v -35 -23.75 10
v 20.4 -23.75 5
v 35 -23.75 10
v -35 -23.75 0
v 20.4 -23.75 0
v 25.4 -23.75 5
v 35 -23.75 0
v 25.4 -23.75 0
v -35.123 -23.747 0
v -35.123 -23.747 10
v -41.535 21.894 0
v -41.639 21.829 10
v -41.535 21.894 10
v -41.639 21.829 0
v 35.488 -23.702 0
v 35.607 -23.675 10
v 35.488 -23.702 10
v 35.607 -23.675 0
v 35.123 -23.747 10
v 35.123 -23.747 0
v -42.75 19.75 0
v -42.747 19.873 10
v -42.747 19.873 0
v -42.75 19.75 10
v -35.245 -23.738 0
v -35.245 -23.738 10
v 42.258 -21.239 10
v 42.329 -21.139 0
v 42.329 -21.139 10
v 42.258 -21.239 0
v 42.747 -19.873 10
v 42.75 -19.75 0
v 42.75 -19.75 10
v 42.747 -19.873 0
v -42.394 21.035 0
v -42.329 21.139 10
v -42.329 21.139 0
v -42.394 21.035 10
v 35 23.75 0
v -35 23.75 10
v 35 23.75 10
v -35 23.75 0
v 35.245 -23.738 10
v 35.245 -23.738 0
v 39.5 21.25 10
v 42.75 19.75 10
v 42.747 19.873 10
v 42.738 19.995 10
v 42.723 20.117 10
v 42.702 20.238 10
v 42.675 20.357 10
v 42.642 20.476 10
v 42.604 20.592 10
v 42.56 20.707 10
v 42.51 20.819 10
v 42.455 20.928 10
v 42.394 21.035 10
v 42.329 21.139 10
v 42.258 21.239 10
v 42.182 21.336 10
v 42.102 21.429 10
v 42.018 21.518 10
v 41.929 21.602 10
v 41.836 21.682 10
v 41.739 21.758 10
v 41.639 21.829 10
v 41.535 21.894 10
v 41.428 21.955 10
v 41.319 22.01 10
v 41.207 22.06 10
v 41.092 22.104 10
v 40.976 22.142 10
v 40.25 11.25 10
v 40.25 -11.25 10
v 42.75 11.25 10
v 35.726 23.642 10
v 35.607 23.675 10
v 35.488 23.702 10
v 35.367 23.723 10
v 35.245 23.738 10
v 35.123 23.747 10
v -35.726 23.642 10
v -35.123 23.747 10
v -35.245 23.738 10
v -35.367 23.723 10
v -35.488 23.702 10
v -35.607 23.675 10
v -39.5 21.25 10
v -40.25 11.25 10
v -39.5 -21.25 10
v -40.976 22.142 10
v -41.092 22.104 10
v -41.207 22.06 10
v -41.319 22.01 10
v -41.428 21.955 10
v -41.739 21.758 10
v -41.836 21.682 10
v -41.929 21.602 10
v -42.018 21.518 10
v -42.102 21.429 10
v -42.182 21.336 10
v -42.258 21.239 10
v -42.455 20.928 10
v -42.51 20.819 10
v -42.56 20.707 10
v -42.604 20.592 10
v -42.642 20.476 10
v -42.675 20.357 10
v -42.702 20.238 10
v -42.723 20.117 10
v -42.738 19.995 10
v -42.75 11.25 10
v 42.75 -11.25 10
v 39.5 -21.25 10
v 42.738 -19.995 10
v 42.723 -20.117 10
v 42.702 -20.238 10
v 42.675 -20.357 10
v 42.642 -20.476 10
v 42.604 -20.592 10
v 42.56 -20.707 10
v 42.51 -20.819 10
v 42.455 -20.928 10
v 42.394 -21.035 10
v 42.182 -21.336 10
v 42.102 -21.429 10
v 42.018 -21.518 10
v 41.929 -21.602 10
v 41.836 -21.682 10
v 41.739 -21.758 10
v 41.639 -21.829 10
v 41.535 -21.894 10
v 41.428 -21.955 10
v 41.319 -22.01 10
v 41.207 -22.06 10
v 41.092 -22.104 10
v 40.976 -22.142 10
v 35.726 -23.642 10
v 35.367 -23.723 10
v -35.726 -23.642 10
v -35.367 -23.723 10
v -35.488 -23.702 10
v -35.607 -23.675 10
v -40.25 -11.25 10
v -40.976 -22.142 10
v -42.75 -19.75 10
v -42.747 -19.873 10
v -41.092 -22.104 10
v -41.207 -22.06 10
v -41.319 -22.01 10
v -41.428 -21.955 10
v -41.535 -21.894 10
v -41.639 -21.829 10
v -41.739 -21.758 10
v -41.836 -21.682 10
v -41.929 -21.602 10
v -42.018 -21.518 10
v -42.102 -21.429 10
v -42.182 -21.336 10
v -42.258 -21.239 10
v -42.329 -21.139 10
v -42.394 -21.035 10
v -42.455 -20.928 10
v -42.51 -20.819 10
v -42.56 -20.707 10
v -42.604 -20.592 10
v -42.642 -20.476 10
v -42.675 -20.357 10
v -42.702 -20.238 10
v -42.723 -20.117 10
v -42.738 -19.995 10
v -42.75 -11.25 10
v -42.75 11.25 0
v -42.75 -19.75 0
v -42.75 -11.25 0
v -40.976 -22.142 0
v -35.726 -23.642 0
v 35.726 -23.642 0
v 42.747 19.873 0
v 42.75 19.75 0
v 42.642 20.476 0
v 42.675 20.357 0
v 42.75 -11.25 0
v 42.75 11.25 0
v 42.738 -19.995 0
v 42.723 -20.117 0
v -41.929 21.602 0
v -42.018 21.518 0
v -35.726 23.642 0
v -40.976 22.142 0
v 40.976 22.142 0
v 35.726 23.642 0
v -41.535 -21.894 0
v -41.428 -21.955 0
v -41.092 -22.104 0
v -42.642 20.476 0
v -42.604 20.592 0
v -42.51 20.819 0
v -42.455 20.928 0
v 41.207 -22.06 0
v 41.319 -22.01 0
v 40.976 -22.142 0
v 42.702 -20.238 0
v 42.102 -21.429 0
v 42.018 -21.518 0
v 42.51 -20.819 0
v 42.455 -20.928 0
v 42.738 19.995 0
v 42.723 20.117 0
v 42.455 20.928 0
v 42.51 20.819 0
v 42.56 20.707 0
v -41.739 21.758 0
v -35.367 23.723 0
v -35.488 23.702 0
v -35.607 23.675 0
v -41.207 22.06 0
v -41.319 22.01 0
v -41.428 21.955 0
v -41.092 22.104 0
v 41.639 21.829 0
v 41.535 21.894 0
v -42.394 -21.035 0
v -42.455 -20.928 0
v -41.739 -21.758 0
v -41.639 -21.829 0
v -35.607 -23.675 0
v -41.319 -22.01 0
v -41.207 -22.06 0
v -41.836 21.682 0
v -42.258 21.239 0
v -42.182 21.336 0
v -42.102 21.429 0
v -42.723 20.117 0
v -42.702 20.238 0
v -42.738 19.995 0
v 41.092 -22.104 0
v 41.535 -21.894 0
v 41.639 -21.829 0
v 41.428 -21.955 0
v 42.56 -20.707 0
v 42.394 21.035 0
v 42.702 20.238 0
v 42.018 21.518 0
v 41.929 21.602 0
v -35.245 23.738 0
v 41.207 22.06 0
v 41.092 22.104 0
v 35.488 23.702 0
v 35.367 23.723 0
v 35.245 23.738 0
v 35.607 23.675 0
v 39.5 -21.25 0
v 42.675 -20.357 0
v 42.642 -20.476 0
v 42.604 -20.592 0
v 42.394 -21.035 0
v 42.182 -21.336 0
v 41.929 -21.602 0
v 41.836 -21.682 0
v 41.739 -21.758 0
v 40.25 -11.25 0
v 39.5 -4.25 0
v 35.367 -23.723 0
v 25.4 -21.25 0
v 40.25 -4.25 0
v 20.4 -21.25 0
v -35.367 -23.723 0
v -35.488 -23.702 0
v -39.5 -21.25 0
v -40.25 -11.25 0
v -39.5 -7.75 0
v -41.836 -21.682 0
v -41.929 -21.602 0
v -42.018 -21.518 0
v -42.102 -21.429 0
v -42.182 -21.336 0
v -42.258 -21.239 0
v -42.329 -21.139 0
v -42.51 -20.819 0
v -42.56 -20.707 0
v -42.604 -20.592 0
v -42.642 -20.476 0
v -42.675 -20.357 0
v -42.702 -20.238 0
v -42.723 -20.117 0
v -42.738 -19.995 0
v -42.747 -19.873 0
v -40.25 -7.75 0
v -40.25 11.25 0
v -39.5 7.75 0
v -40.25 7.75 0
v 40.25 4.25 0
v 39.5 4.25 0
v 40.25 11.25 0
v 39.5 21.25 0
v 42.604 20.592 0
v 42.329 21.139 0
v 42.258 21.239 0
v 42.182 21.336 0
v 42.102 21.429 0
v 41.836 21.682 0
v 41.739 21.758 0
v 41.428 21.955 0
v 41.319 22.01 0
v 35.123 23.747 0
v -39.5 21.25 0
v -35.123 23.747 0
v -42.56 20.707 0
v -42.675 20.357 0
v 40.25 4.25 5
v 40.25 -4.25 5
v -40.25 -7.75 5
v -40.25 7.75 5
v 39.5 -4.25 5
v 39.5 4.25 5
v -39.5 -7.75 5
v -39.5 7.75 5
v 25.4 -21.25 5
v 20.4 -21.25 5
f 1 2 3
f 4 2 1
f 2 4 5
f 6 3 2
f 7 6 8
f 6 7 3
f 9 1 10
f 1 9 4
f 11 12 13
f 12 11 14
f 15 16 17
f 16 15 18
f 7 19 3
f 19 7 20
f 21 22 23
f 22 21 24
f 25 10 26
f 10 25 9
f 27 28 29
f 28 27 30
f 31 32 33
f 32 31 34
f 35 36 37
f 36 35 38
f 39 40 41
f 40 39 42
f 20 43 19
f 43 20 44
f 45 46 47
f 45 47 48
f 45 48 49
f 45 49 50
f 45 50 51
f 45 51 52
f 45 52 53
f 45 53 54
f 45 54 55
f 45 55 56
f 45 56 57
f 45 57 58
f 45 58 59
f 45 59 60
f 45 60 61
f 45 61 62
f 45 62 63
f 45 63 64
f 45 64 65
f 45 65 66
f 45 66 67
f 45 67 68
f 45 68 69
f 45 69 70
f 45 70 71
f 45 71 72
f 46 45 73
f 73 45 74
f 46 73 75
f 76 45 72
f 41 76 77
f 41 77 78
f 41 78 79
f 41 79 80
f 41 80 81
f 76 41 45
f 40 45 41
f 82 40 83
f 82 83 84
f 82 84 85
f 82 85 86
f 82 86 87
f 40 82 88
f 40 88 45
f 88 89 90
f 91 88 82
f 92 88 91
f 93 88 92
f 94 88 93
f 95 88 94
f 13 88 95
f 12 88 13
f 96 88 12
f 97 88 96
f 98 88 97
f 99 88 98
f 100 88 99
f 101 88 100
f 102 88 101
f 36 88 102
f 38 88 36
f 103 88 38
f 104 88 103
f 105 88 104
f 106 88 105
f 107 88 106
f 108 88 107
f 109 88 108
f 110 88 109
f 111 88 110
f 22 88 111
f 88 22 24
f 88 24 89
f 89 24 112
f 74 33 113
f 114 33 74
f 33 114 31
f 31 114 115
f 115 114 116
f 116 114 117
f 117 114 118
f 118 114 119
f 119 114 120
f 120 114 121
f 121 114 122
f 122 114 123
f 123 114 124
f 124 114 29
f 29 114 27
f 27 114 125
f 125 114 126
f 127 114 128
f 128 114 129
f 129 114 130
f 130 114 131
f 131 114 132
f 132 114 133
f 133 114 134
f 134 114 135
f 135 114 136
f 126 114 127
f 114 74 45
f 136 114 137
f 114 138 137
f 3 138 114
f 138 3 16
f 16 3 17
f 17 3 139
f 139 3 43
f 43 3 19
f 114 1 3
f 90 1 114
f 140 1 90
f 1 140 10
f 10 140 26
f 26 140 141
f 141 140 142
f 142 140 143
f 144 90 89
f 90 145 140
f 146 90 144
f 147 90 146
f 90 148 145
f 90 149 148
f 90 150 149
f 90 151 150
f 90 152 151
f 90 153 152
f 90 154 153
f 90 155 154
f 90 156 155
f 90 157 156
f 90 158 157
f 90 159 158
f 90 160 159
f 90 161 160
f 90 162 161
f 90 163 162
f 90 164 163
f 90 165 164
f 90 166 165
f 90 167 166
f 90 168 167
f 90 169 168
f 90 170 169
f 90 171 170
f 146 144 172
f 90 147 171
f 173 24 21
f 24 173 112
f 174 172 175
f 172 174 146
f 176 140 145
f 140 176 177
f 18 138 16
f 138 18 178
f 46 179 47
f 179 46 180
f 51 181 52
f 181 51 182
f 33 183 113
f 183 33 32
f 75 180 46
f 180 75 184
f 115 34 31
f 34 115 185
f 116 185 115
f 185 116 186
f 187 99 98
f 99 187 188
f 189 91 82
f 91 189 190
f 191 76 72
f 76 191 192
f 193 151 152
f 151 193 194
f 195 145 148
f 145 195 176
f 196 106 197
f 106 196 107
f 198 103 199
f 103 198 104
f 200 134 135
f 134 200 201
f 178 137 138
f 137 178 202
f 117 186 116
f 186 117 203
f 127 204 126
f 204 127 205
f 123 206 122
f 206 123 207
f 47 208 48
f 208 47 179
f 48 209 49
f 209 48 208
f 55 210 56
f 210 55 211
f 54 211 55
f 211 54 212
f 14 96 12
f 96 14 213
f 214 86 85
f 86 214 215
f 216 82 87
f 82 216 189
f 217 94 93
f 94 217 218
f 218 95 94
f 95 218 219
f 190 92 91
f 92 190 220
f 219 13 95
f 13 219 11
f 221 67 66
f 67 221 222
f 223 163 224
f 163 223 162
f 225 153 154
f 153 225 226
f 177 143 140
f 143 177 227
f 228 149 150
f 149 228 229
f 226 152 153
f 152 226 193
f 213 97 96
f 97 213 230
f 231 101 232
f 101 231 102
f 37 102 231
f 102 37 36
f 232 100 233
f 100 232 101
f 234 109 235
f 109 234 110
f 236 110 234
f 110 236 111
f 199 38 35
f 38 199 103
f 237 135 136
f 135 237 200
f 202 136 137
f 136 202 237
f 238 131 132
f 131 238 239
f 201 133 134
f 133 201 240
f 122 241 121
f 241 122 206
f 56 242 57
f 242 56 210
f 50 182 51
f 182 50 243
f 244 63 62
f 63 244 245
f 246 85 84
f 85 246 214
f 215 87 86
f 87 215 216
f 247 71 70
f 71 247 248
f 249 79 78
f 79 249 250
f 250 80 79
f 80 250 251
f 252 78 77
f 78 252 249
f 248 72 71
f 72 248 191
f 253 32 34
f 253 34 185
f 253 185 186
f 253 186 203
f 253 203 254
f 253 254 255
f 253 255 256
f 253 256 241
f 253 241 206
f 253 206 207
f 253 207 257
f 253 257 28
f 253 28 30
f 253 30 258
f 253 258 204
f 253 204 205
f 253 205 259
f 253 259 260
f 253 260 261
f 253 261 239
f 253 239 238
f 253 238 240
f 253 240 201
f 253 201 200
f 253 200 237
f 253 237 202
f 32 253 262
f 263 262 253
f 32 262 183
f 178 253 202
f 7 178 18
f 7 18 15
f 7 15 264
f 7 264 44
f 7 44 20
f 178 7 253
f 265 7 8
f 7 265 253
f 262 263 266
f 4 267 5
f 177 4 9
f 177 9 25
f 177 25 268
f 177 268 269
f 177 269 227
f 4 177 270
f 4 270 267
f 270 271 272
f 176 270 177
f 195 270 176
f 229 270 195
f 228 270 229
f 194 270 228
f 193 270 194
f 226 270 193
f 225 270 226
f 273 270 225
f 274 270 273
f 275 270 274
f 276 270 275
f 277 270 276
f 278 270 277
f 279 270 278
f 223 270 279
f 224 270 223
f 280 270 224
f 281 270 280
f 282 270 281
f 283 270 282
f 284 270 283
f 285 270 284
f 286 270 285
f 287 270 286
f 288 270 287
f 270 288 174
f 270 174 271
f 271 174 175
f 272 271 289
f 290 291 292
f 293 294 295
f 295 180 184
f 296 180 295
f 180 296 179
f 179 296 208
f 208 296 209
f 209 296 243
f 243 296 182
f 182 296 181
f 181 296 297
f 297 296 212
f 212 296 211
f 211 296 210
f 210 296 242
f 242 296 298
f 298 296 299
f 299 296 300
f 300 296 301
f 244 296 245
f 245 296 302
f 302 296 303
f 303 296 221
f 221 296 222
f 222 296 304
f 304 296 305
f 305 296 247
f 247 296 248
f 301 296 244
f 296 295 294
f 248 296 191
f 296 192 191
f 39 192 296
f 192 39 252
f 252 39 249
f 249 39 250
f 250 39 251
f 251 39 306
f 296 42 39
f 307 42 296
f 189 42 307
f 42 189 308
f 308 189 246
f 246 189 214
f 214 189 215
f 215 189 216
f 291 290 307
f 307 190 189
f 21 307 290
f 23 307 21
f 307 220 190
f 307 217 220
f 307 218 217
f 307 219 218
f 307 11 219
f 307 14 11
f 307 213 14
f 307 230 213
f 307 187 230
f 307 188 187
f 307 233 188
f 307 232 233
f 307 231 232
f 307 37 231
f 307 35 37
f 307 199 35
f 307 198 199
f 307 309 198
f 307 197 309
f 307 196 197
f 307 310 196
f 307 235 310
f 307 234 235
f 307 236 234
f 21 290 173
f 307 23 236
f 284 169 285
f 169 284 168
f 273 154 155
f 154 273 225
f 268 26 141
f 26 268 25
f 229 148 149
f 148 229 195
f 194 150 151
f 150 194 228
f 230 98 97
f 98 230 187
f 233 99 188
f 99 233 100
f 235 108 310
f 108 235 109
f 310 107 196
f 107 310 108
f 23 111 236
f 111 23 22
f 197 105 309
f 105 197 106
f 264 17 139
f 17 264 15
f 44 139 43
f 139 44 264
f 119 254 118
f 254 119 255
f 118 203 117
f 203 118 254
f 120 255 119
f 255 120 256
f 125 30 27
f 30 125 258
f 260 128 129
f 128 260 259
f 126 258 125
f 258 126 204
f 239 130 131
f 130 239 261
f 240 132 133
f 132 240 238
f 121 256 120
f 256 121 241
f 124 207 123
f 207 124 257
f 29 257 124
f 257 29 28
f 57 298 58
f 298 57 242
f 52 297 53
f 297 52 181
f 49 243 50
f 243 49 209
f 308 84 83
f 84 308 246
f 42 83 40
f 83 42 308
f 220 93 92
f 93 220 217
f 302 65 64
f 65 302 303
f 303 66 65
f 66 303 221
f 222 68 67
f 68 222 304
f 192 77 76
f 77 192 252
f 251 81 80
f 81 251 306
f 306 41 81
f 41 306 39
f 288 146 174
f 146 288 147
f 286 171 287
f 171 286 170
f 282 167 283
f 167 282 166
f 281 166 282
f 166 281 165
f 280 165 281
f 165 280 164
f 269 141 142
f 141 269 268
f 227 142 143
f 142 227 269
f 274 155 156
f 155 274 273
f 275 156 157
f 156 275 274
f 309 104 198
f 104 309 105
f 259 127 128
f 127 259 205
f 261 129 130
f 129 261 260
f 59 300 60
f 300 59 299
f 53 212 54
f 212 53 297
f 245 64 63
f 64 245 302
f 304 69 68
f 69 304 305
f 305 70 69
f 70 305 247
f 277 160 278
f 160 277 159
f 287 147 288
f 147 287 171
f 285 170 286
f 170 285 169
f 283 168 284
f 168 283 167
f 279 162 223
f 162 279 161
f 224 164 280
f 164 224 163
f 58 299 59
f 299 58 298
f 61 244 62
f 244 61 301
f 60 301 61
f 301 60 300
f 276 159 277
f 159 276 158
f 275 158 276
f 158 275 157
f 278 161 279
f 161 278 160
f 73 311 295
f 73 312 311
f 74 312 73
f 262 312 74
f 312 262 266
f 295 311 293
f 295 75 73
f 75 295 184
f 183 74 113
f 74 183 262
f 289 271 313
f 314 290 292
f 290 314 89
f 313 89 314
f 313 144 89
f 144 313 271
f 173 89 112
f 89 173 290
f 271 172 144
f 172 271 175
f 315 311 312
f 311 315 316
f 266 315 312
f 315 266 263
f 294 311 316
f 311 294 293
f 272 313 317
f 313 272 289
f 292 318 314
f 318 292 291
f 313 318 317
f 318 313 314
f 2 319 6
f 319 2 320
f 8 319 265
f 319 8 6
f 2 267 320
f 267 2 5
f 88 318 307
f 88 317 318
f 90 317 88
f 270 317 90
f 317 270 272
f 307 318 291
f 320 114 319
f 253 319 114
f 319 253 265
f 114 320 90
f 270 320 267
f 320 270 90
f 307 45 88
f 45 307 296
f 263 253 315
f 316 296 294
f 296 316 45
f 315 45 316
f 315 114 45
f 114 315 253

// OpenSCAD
$fn = 128;

DEPTH = 4; //23
MAX_WIDTH = 85.5; //85
MIN_WIDTH = 80;

BASE_WIDTH = 75; //71.5
BASE_HEIGHT = 44.5; //39.5

CUT_IN = 2.5;
CUT_IN_HEIGHT = 22.5;

MAX_HEIGHT = 47.5; //47
MARGIN_H = 12;
MARGIH_V = 7;

BAT_HEIGHT = 42.00;
BAT_WIDTH = 78.50;
BAT_DEPTH = 5; // ??

PCB_HEIGHT = 42.50; //42.00
PCB_WIDTH = 79.0;  //78.50
PCB_DEPTH = 1.55;   //1.55

BATTERY_BASKET_HEIGHT = 40.50;
BATTERY_BASKET_WIDTH = 78.00;
BATTERY_BASKET_DEPTH = 21.88;

CORNERS_CURVE = 5;

//USB MICRO, TODO: add real numbers
USB_MICRO_WIDTH = 5.8; 
USB_MICRO_HEIGHT = 8.5; //8
USB_MICRO_DEPTH = 2.55;

//USB STANDARD, TODO: add real numbers
USB_STANDARD_WIDTH = 10; 
USB_STANDARD_HEIGHT = 15.5; //14.9
USB_STANDARD_DEPTH = 7.22;

//BATTERY CHECK
BATTERY_CHECK_WIDTH = 5; // 4.6
BATTERY_CHECK_HEIGHT = 5.08;
BATTERY_CHECK_DEPTH = 6.20;
BATTERY_CHECK_OFFSET = 13.85; //13.85

//Inkscape scale
SCALE = 3.58;

EXPLODE = 0;

DEBUG = false;
DEBUG_HINT = false;

bottom();
//translate([0,0,20])
//top();


module bottom(){
    battery_support_layer = 10;
    
    if(battery_support_layer>0){    
        color("grey")
        translate([0,0,battery_support_layer/2])
        lantian_battery_support_layer(battery_support_layer);
           
        // This can to be commented out once we have all the shapes
        if(DEBUG_HINT){
            color("blue")
            translate([0,0,10 + EXPLODE*2])    
            union(){
                rotate([180,0,0])
                scale([SCALE,SCALE,1])
                inkscape_battery();
            }     
        }   
    }
}

module top(){
    top_layer = 2;
    
    if(top_layer>0){
        color("white")
        translate([0,0,top_layer/2])
        main_shape(top_layer);
    } 
}

module main_shape(depth){
    // This is the main shape of the case
    difference(){
        hull(){
            rounded_corners(BASE_WIDTH, MAX_HEIGHT, depth, CORNERS_CURVE);
            rounded_corners(MAX_WIDTH, BASE_HEIGHT, depth, CORNERS_CURVE);
        }
        
        translate([MAX_WIDTH/2,0,0])
        cut_in();
        
        translate([-MAX_WIDTH/2,0,0])
        cut_in();        
    
    }    
}

module cut_in(){
    cube([CUT_IN*2, CUT_IN_HEIGHT, DEPTH*4], true);
}

module battery(){
    translate([0,0,PCB_DEPTH/2])
    union(){        
        
        color("grey")
        translate([0,0,PCB_DEPTH/2 + BATTERY_BASKET_DEPTH/2])        
        battery_basket();
        
        color("red")
        battery_pcb(10,PCB_DEPTH+10);
        
        color("white")
        translate([0,0,-PCB_DEPTH/2])        
        battery_pcb_components(PCB_DEPTH);    
    }
}

module battery_basket(){
    cube([BATTERY_BASKET_WIDTH, BATTERY_BASKET_HEIGHT, BATTERY_BASKET_DEPTH], true);        
}

module battery_pcb(hull_size, hull_size_down){
    hull(){
        cube([PCB_WIDTH, PCB_HEIGHT, PCB_DEPTH], true);    
        
        if(hull_size>PCB_DEPTH){                
            translate([0, 0, hull_size-PCB_DEPTH])                
            cube([PCB_WIDTH, PCB_HEIGHT, PCB_DEPTH], true);    
        }
        
        if(hull_size_down>PCB_DEPTH){                
            translate([0, 0, PCB_DEPTH-hull_size_down])                
            cube([PCB_WIDTH, PCB_HEIGHT, PCB_DEPTH], true);    
        }        
    }
}

module battery_pcb_components(){
    hull_size = 10;
    union(){
        //Slot for micro USB
        translate([(BAT_WIDTH-USB_MICRO_WIDTH)/2,0,-USB_MICRO_DEPTH/2])
        usb_micro(hull_size);        
        
        //Slot for standard USB
        translate([-(BAT_WIDTH-USB_STANDARD_WIDTH)/2,0,-USB_STANDARD_DEPTH/2])
        usb_standard(hull_size);           
        
        //Slot for the button
        translate([
            (BAT_WIDTH-BATTERY_CHECK_WIDTH)/2 - BATTERY_CHECK_OFFSET,
            -(BAT_HEIGHT-BATTERY_CHECK_HEIGHT)/2,
            -BATTERY_CHECK_DEPTH/2
        ])
        battery_check(hull_size);          
    }
}

module lantian_battery_support_layer(depth){
    difference(){
        main_shape(depth);
        battery();
    }    
    
    if(DEBUG){
        battery();
    }
}

module usb_micro(hull_size){
    hull(){        
        //USB MICRO PORT
        cube([USB_MICRO_WIDTH, USB_MICRO_HEIGHT, USB_MICRO_DEPTH], true);
        
        //TUNNEL FOR MICRO PORT
        translate([USB_MICRO_WIDTH, 0, 0])
        cube([USB_MICRO_WIDTH, USB_MICRO_HEIGHT, USB_MICRO_DEPTH], true);    
        
        if(hull_size>USB_MICRO_DEPTH){                
            //lower part
            //USB MICRO PORT
            translate([0, 0, USB_MICRO_DEPTH-hull_size])        
            cube([USB_MICRO_WIDTH, USB_MICRO_HEIGHT, USB_MICRO_DEPTH], true);        
            
            //TUNNEL FOR MICRO PORT        
            translate([USB_MICRO_WIDTH, 0, USB_MICRO_DEPTH-hull_size])
            cube([USB_MICRO_WIDTH, USB_MICRO_HEIGHT, USB_MICRO_DEPTH], true);         
        }
    }
    
}

module usb_standard(hull_size){    
    hull(){
        //USB STANDARD PORT
        cube([USB_STANDARD_WIDTH, USB_STANDARD_HEIGHT, USB_STANDARD_DEPTH], true);
        
        //TUNNEL FOR STANDARD PORT
        translate([-USB_STANDARD_WIDTH, 0, 0])
        cube([USB_STANDARD_WIDTH, USB_STANDARD_HEIGHT, USB_STANDARD_DEPTH], true);
        
        if(hull_size>USB_STANDARD_DEPTH){                        
            //USB STANDARD PORT
            translate([0, 0, USB_STANDARD_DEPTH-hull_size])        
            cube([USB_STANDARD_WIDTH, USB_STANDARD_HEIGHT, USB_STANDARD_DEPTH], true);
            
            //TUNNEL FOR STANDARD PORT
            translate([-USB_STANDARD_WIDTH, 0, USB_STANDARD_DEPTH-hull_size])
            cube([USB_STANDARD_WIDTH, USB_STANDARD_HEIGHT, USB_STANDARD_DEPTH], true);        
        }
    }
}

module battery_check(hull_size){    
    hull(){
        //BATTERY CHECK BUTTON
        cube([BATTERY_CHECK_WIDTH, BATTERY_CHECK_HEIGHT, BATTERY_CHECK_DEPTH], true);
        
        //TUNNEL FOR BUTTON
        translate([0, -BATTERY_CHECK_HEIGHT, 0])
        cube([BATTERY_CHECK_WIDTH, BATTERY_CHECK_HEIGHT, BATTERY_CHECK_DEPTH], true);
        
        if(hull_size>BATTERY_CHECK_DEPTH){
            //BATTERY CHECK BUTTON
            translate([0, 0, BATTERY_CHECK_DEPTH-hull_size])        
            cube([BATTERY_CHECK_WIDTH, BATTERY_CHECK_HEIGHT, BATTERY_CHECK_DEPTH], true);
            
            //TUNNEL FOR BUTTON
            translate([0, -BATTERY_CHECK_HEIGHT, BATTERY_CHECK_DEPTH-hull_size])
            cube([BATTERY_CHECK_WIDTH, BATTERY_CHECK_HEIGHT, BATTERY_CHECK_DEPTH], true);        
        }
    }
}

// Should be extracted to a LIB or sth
module rounded_corners(width, height, depth, corner_curve){
    x_translate = width-corner_curve;
    y_translate = height-corner_curve;     
    
    hull(){
            translate([-x_translate/2, -y_translate/2, 0])
            cylinder(depth,corner_curve/2, corner_curve/2, true);    
            
            translate([-x_translate/2, y_translate/2, 0])
            cylinder(depth,corner_curve/2, corner_curve/2, true);

            translate([x_translate/2, y_translate/2, 0])
            cylinder(depth,corner_curve/2, corner_curve/2, true);        
            
            translate([x_translate/2, -y_translate/2, 0])
            cylinder(depth,corner_curve/2, corner_curve/2, true);        
    }        
}

module inkscape_battery(){
    fudge = 0.1;

    module poly_rect4745(h)
    {
      scale([25.4/90, -25.4/90, 1]) union()
      {
        linear_extrude(height=h)
          polygon([[-41.460186,-7.182880],[-30.635770,-7.182880],[-30.635770,7.717400],[-41.460186,7.717400]]);
      }
    }

    module poly_rect4861(h)
    {
      scale([25.4/90, -25.4/90, 1]) union()
      {
        linear_extrude(height=h)
          polygon([[-22.830052,12.700430],[-5.348654,12.700430],[-5.348654,21.204894],[-22.830052,21.204894]]);
      }
    }

    module poly_rect4749(h)
    {
      scale([25.4/90, -25.4/90, 1]) union()
      {
        linear_extrude(height=h)
          polygon([[20.746795,-22.417230],[27.094445,-22.417230],[27.094445,-15.601860],[20.746795,-15.601860]]);
      }
    }

    module poly_rect4753(h)
    {
      scale([25.4/90, -25.4/90, 1]) union()
      {
        linear_extrude(height=h)
          polygon([[-39.650746,21.014060],[40.391105,21.014060],[40.391105,22.417220],[-39.650746,22.417220]]);
      }
    }

    module poly_path4769(h)
    {
      scale([25.4/90, -25.4/90, 1]) union()
      {
        linear_extrude(height=h)
          polygon([[19.410475,-15.735500],[19.090048,-14.124593],[18.177543,-12.758933],[16.811882,-11.846428],[15.200975,-11.526000],[13.562450,-11.856805],[12.224415,-12.758936],[11.322287,-14.096974],[10.991485,-15.735500],[11.322289,-17.374023],[12.224418,-18.712057],[13.562453,-19.614186],[15.200975,-19.944990],[16.839501,-19.614189],[18.177539,-18.712061],[19.079671,-17.374025],[19.410475,-15.735500],[19.410475,-15.735500]]);
      }
    }

    module poly_path4761(h)
    {
      scale([25.4/90, -25.4/90, 1]) union()
      {
        linear_extrude(height=h)
          polygon([[-24.154471,14.733220],[-24.576621,16.855524],[-25.778808,18.654728],[-27.578010,19.856917],[-29.700314,20.279070],[-31.822617,19.856917],[-33.621819,18.654728],[-34.824006,16.855524],[-35.246157,14.733220],[-34.810336,12.574529],[-33.621816,10.811719],[-31.859005,9.623199],[-29.700314,9.187380],[-27.541622,9.623199],[-25.778811,10.811719],[-24.590291,12.574529],[-24.154471,14.733220],[-24.154471,14.733220]]);
      }
    }

    module poly_path4759(h)
    {
      scale([25.4/90, -25.4/90, 1]) union()
      {
        linear_extrude(height=h)
          polygon([[-25.557651,-13.864610],[-25.972468,-11.809952],[-27.103710,-10.132097],[-28.781565,-9.000856],[-30.836224,-8.586040],[-32.890882,-9.000856],[-34.568737,-10.132097],[-35.699979,-11.809952],[-36.114796,-13.864610],[-35.699979,-15.919268],[-34.568737,-17.597123],[-32.890882,-18.728364],[-30.836224,-19.143180],[-28.781565,-18.728364],[-27.103710,-17.597123],[-25.972468,-15.919268],[-25.557651,-13.864610],[-25.557651,-13.864610]]);
      }
    }

    module poly_rect146(h)
    {
      scale([25.4/90, -25.4/90, 1]) union()
      {
        linear_extrude(height=h)
          polygon([[14.069885,-4.119500],[22.007385,-4.119500],[22.007385,4.384970],[14.069885,4.384970]]);
      }
    }

    module poly_path4767(h)
    {
      scale([25.4/90, -25.4/90, 1]) union()
      {
        linear_extrude(height=h)
          polygon([[36.716145,15.969340],[36.366962,17.698894],[35.414713,19.111265],[34.002340,20.063511],[32.272785,20.412690],[30.543231,20.063511],[29.130858,19.111265],[28.178609,17.698894],[27.829425,15.969340],[28.167655,14.268939],[29.130854,12.827409],[30.572385,11.864210],[32.272785,11.525980],[33.973186,11.864210],[35.414717,12.827409],[36.377916,14.268939],[36.716145,15.969340],[36.716145,15.969340]]);
      }
    }

    module poly_rect4747(h)
    {
      scale([25.4/90, -25.4/90, 1]) union()
      {
        linear_extrude(height=h)
          polygon([[35.045716,-3.507930],[41.460185,-3.507930],[41.460185,4.777430],[35.045716,4.777430]]);
      }
    }

    module poly_rect4751(h)
    {
      scale([25.4/90, -25.4/90, 1]) union()
      {
        linear_extrude(height=h)
          polygon([[-39.650746,-20.813630],[-38.782120,-20.813630],[-38.782120,22.417220],[-39.650746,22.417220]]);
      }
    }

    module poly_rect4757(h)
    {
      scale([25.4/90, -25.4/90, 1]) union()
      {
        linear_extrude(height=h)
          polygon([[-39.650746,-20.813640],[39.455655,-20.813640],[39.455655,-20.212260],[-39.650746,-20.212260]]);
      }
    }

    module poly_rect4859(h)
    {
      scale([25.4/90, -25.4/90, 1]) union()
      {
        linear_extrude(height=h)
          polygon([[1.549415,4.762930],[9.770397,4.762930],[9.770397,12.322454],[1.549415,12.322454]]);
      }
    }

    module poly_rect4755(h)
    {
      scale([25.4/90, -25.4/90, 1]) union()
      {
        linear_extrude(height=h)
          polygon([[38.186135,-20.212260],[39.455665,-20.212260],[39.455665,22.417230],[38.186135,22.417230]]);
      }
    }

    module poly_rect4703(h)
    {
      scale([25.4/90, -25.4/90, 1]) union()
      {
        linear_extrude(height=h)
          polygon([[-22.751316,-20.412720],[-4.911075,-20.412720],[-4.911075,-9.387850],[-22.751316,-9.387850]]);
      }
    }

    module poly_path4773(h)
    {
      scale([25.4/90, -25.4/90, 1]) union()
      {
        linear_extrude(height=h)
          polygon([[1.369765,0.233850],[0.922183,2.484002],[-0.352426,4.391589],[-2.260013,5.666197],[-4.510165,6.113780],[-6.760317,5.666197],[-8.667904,4.391589],[-9.942513,2.484002],[-10.390096,0.233850],[-9.942513,-2.016302],[-8.667904,-3.923889],[-6.760317,-5.198497],[-4.510165,-5.646080],[-2.260013,-5.198497],[-0.352426,-3.923889],[0.922183,-2.016302],[1.369765,0.233850],[1.369765,0.233850]]);
      }
    }

    poly_rect4745(5);
    poly_rect4861(5);
    poly_rect4749(5);
    poly_rect4753(5);
    poly_path4769(5);
    poly_path4761(5);
    poly_path4759(5);
    poly_rect146(5);
    poly_path4767(5);
    poly_rect4747(5);
    poly_rect4751(5);
    poly_rect4757(5);
    poly_rect4859(5);
    poly_rect4755(5);
    poly_rect4703(5);
    poly_path4773(5);
        
}
